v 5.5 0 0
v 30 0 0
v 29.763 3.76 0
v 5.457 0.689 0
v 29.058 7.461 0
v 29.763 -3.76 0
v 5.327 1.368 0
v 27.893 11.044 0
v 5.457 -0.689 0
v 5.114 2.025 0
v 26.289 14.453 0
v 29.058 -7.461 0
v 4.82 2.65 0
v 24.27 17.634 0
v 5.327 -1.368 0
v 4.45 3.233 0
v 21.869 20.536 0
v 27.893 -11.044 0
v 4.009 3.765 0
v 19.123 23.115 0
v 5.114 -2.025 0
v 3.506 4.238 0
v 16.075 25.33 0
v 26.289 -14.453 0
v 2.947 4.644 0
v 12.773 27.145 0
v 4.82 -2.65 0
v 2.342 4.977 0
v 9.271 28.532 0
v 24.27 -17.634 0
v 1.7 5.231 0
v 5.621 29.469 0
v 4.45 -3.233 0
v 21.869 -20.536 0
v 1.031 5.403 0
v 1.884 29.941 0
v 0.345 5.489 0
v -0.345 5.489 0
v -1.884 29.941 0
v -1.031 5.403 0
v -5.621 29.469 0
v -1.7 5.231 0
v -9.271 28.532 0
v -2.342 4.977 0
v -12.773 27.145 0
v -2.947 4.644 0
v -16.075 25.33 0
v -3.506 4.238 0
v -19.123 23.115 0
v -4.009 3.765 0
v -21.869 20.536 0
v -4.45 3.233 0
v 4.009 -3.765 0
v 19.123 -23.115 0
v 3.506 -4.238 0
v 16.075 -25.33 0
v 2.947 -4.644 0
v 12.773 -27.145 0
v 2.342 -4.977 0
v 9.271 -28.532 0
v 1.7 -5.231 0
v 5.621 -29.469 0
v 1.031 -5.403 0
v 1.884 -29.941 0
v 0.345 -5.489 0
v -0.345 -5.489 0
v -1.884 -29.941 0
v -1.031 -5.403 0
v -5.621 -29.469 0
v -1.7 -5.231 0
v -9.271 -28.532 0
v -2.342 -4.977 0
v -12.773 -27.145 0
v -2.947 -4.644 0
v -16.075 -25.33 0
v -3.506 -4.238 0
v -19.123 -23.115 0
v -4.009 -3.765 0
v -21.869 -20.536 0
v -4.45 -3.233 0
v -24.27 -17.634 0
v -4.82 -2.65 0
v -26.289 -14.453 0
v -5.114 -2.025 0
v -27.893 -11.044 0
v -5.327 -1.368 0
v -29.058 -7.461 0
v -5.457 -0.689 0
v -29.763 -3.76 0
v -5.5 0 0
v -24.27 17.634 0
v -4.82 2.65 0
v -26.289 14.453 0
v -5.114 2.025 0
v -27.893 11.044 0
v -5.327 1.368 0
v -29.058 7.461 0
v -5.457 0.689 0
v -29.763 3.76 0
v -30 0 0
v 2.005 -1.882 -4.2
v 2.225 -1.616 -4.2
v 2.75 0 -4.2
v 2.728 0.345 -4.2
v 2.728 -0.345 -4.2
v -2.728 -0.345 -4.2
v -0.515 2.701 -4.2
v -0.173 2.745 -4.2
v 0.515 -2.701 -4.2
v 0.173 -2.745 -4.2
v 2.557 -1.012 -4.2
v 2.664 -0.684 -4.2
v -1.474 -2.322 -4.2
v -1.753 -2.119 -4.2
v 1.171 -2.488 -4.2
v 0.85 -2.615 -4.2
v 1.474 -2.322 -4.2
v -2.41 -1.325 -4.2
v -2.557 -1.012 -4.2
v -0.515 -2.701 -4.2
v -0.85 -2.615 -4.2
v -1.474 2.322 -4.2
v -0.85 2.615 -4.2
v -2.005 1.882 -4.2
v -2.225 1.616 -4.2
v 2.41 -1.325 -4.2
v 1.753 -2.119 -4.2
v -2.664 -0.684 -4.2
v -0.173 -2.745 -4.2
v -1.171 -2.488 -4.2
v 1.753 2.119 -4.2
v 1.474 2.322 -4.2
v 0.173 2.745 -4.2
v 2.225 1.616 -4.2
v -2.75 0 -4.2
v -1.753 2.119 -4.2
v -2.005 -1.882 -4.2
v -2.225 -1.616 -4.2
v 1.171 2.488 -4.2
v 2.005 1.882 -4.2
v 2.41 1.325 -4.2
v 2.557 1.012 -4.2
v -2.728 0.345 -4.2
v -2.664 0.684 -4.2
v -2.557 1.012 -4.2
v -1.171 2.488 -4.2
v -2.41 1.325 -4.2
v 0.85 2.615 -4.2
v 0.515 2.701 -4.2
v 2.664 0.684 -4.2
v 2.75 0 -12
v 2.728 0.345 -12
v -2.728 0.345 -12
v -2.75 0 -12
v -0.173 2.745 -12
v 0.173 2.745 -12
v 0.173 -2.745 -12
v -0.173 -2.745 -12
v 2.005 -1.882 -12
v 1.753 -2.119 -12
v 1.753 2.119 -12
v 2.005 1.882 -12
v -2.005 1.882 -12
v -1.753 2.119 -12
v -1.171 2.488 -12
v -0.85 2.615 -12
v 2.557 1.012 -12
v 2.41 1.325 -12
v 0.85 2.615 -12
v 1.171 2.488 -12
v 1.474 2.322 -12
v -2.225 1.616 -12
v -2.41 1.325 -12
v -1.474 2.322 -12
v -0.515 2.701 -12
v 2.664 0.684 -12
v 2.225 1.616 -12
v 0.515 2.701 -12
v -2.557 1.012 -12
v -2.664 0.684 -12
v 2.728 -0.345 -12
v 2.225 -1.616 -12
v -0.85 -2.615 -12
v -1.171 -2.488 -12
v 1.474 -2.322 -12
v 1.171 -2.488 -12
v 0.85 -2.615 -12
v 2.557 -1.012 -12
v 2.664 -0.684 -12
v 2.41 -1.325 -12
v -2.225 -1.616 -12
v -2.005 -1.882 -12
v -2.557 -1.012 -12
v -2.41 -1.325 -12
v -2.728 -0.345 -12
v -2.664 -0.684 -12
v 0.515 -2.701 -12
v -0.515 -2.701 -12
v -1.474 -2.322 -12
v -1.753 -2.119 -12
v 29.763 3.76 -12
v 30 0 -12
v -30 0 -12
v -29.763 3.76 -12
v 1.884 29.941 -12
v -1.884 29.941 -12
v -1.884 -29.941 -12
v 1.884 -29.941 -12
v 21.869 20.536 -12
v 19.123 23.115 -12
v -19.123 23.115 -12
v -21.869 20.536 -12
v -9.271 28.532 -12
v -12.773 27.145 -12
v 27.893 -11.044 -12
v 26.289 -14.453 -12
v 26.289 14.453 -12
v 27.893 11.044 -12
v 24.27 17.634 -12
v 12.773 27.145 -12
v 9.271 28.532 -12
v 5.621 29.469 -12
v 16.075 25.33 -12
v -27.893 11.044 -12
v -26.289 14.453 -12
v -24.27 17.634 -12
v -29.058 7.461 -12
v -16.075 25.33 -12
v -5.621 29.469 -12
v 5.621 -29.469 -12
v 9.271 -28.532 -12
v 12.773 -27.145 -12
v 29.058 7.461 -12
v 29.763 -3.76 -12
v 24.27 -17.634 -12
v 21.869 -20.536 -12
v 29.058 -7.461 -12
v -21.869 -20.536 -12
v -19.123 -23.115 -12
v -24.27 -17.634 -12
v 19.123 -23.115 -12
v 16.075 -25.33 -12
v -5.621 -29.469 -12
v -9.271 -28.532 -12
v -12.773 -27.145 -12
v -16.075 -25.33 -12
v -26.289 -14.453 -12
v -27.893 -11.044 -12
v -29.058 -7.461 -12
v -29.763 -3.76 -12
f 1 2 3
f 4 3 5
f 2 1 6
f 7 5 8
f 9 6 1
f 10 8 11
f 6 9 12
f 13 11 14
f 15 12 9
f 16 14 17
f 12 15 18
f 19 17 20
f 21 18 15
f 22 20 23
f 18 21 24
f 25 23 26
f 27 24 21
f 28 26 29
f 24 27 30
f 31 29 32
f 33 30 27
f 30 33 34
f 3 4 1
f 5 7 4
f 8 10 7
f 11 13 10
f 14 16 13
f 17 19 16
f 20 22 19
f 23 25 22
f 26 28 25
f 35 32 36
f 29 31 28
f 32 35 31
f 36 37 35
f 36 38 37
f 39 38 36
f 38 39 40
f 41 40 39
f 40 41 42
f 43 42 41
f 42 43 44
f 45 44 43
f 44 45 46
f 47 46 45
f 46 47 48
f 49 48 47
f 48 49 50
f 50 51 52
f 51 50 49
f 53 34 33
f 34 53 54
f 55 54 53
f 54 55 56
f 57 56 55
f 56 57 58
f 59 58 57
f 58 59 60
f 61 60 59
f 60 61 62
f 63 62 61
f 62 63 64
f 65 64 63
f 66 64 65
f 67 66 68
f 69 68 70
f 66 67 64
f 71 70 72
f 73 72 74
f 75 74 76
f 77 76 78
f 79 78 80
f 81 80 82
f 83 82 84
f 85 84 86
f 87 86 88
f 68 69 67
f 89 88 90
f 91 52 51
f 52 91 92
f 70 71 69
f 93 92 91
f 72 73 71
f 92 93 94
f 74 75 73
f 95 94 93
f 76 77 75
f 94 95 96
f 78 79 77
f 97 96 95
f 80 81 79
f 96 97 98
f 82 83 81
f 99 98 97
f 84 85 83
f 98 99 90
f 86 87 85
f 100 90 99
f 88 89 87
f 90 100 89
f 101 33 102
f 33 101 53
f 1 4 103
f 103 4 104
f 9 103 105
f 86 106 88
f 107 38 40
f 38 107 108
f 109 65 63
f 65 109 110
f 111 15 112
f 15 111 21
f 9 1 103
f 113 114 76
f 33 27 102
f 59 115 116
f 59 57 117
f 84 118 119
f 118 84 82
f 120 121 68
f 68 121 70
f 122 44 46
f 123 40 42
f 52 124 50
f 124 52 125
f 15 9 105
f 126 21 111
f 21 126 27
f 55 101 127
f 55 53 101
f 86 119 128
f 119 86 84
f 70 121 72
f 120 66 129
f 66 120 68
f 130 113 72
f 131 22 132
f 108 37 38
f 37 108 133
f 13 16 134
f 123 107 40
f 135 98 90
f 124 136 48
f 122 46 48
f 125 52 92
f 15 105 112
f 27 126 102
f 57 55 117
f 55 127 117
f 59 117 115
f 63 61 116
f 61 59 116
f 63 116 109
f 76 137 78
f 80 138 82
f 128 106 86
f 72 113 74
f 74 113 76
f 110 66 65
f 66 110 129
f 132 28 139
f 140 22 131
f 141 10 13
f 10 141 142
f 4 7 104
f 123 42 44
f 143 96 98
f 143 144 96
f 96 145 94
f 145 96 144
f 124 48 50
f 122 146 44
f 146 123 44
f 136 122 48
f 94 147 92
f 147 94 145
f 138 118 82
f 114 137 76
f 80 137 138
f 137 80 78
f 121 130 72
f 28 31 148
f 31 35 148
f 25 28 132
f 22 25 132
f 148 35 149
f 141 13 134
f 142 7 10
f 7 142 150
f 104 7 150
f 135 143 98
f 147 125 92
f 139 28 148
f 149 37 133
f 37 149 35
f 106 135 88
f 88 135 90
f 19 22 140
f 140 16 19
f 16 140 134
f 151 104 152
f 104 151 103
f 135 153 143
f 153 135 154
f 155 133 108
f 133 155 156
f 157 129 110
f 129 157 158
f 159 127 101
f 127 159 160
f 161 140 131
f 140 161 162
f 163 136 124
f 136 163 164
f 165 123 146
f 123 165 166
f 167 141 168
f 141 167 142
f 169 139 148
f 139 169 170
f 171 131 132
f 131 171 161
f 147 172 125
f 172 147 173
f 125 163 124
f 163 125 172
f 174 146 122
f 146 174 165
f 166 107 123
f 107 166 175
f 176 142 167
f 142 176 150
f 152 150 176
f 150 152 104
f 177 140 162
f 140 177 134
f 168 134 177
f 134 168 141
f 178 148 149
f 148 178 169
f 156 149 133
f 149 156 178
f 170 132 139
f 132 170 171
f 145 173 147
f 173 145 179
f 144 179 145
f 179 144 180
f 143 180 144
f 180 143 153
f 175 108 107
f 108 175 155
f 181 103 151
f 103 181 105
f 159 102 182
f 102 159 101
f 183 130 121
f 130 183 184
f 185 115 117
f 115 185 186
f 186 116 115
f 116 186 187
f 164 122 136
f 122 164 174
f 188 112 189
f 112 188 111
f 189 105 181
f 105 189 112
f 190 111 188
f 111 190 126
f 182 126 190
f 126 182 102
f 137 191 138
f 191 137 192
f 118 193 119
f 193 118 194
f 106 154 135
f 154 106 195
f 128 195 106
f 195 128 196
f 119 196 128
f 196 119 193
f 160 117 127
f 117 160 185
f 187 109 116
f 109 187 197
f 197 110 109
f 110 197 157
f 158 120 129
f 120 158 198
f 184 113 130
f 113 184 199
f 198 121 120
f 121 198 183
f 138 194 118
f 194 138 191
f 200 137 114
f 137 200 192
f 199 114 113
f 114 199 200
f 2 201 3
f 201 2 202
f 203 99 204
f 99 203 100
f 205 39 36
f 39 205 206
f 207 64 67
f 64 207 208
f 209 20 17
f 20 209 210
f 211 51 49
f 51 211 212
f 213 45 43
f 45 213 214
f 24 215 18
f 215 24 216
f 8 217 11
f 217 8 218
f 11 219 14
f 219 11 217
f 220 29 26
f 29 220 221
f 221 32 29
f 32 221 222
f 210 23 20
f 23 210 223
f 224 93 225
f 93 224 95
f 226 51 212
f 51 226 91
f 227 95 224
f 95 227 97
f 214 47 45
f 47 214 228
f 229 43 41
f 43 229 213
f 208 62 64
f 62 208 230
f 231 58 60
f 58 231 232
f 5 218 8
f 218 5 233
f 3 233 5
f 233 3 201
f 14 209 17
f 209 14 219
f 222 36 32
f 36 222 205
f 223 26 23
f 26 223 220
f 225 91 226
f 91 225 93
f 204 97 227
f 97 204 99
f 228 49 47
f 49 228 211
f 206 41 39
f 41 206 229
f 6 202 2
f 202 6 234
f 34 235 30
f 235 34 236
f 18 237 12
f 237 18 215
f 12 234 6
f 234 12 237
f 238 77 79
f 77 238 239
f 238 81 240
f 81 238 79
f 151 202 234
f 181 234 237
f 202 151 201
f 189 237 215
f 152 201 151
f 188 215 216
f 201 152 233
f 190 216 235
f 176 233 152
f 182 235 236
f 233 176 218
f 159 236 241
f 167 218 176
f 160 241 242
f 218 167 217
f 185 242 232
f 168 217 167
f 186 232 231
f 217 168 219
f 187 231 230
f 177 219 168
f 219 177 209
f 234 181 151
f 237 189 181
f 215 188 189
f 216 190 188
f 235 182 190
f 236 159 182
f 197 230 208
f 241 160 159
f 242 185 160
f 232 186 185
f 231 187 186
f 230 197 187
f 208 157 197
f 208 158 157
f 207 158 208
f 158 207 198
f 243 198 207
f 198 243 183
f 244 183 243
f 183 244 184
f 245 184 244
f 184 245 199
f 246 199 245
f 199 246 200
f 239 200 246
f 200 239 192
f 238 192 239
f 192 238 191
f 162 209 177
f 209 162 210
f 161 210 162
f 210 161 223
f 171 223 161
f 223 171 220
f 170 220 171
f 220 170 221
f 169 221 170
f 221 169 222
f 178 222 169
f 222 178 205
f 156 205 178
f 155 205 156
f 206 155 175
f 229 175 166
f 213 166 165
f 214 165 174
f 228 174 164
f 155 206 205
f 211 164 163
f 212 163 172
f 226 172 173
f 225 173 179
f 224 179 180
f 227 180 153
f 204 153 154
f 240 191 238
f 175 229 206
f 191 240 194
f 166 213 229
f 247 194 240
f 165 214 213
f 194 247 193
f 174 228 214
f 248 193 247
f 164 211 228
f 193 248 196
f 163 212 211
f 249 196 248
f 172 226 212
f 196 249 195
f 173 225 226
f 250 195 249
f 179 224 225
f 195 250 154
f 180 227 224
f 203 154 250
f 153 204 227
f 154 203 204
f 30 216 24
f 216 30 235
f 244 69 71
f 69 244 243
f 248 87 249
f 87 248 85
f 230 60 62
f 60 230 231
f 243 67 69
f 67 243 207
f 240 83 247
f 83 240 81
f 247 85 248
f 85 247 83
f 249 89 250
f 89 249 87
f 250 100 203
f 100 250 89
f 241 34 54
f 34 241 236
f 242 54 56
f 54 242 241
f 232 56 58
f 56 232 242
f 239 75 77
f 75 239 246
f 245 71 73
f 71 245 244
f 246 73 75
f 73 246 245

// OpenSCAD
$fn = 50;


difference() {
	union() {
		translate(v = [0, 0, -12.0000000000]) {
			cylinder(h = 12, r = 30.0000000000);
		}
	}
	union() {
		translate(v = [0, 0, 0]) {
			rotate(a = [0, 0, 0]) {
				difference() {
					union() {
						translate(v = [0, 0, -15.0000000000]) {
							cylinder(h = 15, r = 2.2500000000);
						}
						translate(v = [0, 0, -4.2000000000]) {
							cylinder(h = 4.2000000000, r1 = 2.7500000000, r2 = 5.5000000000);
						}
						translate(v = [0, 0, -15.0000000000]) {
							cylinder(h = 15, r = 2.7500000000);
						}
						translate(v = [0, 0, -15.0000000000]) {
							cylinder(h = 15, r = 2.2500000000);
						}
					}
					union();
				}
			}
		}
	}
}
